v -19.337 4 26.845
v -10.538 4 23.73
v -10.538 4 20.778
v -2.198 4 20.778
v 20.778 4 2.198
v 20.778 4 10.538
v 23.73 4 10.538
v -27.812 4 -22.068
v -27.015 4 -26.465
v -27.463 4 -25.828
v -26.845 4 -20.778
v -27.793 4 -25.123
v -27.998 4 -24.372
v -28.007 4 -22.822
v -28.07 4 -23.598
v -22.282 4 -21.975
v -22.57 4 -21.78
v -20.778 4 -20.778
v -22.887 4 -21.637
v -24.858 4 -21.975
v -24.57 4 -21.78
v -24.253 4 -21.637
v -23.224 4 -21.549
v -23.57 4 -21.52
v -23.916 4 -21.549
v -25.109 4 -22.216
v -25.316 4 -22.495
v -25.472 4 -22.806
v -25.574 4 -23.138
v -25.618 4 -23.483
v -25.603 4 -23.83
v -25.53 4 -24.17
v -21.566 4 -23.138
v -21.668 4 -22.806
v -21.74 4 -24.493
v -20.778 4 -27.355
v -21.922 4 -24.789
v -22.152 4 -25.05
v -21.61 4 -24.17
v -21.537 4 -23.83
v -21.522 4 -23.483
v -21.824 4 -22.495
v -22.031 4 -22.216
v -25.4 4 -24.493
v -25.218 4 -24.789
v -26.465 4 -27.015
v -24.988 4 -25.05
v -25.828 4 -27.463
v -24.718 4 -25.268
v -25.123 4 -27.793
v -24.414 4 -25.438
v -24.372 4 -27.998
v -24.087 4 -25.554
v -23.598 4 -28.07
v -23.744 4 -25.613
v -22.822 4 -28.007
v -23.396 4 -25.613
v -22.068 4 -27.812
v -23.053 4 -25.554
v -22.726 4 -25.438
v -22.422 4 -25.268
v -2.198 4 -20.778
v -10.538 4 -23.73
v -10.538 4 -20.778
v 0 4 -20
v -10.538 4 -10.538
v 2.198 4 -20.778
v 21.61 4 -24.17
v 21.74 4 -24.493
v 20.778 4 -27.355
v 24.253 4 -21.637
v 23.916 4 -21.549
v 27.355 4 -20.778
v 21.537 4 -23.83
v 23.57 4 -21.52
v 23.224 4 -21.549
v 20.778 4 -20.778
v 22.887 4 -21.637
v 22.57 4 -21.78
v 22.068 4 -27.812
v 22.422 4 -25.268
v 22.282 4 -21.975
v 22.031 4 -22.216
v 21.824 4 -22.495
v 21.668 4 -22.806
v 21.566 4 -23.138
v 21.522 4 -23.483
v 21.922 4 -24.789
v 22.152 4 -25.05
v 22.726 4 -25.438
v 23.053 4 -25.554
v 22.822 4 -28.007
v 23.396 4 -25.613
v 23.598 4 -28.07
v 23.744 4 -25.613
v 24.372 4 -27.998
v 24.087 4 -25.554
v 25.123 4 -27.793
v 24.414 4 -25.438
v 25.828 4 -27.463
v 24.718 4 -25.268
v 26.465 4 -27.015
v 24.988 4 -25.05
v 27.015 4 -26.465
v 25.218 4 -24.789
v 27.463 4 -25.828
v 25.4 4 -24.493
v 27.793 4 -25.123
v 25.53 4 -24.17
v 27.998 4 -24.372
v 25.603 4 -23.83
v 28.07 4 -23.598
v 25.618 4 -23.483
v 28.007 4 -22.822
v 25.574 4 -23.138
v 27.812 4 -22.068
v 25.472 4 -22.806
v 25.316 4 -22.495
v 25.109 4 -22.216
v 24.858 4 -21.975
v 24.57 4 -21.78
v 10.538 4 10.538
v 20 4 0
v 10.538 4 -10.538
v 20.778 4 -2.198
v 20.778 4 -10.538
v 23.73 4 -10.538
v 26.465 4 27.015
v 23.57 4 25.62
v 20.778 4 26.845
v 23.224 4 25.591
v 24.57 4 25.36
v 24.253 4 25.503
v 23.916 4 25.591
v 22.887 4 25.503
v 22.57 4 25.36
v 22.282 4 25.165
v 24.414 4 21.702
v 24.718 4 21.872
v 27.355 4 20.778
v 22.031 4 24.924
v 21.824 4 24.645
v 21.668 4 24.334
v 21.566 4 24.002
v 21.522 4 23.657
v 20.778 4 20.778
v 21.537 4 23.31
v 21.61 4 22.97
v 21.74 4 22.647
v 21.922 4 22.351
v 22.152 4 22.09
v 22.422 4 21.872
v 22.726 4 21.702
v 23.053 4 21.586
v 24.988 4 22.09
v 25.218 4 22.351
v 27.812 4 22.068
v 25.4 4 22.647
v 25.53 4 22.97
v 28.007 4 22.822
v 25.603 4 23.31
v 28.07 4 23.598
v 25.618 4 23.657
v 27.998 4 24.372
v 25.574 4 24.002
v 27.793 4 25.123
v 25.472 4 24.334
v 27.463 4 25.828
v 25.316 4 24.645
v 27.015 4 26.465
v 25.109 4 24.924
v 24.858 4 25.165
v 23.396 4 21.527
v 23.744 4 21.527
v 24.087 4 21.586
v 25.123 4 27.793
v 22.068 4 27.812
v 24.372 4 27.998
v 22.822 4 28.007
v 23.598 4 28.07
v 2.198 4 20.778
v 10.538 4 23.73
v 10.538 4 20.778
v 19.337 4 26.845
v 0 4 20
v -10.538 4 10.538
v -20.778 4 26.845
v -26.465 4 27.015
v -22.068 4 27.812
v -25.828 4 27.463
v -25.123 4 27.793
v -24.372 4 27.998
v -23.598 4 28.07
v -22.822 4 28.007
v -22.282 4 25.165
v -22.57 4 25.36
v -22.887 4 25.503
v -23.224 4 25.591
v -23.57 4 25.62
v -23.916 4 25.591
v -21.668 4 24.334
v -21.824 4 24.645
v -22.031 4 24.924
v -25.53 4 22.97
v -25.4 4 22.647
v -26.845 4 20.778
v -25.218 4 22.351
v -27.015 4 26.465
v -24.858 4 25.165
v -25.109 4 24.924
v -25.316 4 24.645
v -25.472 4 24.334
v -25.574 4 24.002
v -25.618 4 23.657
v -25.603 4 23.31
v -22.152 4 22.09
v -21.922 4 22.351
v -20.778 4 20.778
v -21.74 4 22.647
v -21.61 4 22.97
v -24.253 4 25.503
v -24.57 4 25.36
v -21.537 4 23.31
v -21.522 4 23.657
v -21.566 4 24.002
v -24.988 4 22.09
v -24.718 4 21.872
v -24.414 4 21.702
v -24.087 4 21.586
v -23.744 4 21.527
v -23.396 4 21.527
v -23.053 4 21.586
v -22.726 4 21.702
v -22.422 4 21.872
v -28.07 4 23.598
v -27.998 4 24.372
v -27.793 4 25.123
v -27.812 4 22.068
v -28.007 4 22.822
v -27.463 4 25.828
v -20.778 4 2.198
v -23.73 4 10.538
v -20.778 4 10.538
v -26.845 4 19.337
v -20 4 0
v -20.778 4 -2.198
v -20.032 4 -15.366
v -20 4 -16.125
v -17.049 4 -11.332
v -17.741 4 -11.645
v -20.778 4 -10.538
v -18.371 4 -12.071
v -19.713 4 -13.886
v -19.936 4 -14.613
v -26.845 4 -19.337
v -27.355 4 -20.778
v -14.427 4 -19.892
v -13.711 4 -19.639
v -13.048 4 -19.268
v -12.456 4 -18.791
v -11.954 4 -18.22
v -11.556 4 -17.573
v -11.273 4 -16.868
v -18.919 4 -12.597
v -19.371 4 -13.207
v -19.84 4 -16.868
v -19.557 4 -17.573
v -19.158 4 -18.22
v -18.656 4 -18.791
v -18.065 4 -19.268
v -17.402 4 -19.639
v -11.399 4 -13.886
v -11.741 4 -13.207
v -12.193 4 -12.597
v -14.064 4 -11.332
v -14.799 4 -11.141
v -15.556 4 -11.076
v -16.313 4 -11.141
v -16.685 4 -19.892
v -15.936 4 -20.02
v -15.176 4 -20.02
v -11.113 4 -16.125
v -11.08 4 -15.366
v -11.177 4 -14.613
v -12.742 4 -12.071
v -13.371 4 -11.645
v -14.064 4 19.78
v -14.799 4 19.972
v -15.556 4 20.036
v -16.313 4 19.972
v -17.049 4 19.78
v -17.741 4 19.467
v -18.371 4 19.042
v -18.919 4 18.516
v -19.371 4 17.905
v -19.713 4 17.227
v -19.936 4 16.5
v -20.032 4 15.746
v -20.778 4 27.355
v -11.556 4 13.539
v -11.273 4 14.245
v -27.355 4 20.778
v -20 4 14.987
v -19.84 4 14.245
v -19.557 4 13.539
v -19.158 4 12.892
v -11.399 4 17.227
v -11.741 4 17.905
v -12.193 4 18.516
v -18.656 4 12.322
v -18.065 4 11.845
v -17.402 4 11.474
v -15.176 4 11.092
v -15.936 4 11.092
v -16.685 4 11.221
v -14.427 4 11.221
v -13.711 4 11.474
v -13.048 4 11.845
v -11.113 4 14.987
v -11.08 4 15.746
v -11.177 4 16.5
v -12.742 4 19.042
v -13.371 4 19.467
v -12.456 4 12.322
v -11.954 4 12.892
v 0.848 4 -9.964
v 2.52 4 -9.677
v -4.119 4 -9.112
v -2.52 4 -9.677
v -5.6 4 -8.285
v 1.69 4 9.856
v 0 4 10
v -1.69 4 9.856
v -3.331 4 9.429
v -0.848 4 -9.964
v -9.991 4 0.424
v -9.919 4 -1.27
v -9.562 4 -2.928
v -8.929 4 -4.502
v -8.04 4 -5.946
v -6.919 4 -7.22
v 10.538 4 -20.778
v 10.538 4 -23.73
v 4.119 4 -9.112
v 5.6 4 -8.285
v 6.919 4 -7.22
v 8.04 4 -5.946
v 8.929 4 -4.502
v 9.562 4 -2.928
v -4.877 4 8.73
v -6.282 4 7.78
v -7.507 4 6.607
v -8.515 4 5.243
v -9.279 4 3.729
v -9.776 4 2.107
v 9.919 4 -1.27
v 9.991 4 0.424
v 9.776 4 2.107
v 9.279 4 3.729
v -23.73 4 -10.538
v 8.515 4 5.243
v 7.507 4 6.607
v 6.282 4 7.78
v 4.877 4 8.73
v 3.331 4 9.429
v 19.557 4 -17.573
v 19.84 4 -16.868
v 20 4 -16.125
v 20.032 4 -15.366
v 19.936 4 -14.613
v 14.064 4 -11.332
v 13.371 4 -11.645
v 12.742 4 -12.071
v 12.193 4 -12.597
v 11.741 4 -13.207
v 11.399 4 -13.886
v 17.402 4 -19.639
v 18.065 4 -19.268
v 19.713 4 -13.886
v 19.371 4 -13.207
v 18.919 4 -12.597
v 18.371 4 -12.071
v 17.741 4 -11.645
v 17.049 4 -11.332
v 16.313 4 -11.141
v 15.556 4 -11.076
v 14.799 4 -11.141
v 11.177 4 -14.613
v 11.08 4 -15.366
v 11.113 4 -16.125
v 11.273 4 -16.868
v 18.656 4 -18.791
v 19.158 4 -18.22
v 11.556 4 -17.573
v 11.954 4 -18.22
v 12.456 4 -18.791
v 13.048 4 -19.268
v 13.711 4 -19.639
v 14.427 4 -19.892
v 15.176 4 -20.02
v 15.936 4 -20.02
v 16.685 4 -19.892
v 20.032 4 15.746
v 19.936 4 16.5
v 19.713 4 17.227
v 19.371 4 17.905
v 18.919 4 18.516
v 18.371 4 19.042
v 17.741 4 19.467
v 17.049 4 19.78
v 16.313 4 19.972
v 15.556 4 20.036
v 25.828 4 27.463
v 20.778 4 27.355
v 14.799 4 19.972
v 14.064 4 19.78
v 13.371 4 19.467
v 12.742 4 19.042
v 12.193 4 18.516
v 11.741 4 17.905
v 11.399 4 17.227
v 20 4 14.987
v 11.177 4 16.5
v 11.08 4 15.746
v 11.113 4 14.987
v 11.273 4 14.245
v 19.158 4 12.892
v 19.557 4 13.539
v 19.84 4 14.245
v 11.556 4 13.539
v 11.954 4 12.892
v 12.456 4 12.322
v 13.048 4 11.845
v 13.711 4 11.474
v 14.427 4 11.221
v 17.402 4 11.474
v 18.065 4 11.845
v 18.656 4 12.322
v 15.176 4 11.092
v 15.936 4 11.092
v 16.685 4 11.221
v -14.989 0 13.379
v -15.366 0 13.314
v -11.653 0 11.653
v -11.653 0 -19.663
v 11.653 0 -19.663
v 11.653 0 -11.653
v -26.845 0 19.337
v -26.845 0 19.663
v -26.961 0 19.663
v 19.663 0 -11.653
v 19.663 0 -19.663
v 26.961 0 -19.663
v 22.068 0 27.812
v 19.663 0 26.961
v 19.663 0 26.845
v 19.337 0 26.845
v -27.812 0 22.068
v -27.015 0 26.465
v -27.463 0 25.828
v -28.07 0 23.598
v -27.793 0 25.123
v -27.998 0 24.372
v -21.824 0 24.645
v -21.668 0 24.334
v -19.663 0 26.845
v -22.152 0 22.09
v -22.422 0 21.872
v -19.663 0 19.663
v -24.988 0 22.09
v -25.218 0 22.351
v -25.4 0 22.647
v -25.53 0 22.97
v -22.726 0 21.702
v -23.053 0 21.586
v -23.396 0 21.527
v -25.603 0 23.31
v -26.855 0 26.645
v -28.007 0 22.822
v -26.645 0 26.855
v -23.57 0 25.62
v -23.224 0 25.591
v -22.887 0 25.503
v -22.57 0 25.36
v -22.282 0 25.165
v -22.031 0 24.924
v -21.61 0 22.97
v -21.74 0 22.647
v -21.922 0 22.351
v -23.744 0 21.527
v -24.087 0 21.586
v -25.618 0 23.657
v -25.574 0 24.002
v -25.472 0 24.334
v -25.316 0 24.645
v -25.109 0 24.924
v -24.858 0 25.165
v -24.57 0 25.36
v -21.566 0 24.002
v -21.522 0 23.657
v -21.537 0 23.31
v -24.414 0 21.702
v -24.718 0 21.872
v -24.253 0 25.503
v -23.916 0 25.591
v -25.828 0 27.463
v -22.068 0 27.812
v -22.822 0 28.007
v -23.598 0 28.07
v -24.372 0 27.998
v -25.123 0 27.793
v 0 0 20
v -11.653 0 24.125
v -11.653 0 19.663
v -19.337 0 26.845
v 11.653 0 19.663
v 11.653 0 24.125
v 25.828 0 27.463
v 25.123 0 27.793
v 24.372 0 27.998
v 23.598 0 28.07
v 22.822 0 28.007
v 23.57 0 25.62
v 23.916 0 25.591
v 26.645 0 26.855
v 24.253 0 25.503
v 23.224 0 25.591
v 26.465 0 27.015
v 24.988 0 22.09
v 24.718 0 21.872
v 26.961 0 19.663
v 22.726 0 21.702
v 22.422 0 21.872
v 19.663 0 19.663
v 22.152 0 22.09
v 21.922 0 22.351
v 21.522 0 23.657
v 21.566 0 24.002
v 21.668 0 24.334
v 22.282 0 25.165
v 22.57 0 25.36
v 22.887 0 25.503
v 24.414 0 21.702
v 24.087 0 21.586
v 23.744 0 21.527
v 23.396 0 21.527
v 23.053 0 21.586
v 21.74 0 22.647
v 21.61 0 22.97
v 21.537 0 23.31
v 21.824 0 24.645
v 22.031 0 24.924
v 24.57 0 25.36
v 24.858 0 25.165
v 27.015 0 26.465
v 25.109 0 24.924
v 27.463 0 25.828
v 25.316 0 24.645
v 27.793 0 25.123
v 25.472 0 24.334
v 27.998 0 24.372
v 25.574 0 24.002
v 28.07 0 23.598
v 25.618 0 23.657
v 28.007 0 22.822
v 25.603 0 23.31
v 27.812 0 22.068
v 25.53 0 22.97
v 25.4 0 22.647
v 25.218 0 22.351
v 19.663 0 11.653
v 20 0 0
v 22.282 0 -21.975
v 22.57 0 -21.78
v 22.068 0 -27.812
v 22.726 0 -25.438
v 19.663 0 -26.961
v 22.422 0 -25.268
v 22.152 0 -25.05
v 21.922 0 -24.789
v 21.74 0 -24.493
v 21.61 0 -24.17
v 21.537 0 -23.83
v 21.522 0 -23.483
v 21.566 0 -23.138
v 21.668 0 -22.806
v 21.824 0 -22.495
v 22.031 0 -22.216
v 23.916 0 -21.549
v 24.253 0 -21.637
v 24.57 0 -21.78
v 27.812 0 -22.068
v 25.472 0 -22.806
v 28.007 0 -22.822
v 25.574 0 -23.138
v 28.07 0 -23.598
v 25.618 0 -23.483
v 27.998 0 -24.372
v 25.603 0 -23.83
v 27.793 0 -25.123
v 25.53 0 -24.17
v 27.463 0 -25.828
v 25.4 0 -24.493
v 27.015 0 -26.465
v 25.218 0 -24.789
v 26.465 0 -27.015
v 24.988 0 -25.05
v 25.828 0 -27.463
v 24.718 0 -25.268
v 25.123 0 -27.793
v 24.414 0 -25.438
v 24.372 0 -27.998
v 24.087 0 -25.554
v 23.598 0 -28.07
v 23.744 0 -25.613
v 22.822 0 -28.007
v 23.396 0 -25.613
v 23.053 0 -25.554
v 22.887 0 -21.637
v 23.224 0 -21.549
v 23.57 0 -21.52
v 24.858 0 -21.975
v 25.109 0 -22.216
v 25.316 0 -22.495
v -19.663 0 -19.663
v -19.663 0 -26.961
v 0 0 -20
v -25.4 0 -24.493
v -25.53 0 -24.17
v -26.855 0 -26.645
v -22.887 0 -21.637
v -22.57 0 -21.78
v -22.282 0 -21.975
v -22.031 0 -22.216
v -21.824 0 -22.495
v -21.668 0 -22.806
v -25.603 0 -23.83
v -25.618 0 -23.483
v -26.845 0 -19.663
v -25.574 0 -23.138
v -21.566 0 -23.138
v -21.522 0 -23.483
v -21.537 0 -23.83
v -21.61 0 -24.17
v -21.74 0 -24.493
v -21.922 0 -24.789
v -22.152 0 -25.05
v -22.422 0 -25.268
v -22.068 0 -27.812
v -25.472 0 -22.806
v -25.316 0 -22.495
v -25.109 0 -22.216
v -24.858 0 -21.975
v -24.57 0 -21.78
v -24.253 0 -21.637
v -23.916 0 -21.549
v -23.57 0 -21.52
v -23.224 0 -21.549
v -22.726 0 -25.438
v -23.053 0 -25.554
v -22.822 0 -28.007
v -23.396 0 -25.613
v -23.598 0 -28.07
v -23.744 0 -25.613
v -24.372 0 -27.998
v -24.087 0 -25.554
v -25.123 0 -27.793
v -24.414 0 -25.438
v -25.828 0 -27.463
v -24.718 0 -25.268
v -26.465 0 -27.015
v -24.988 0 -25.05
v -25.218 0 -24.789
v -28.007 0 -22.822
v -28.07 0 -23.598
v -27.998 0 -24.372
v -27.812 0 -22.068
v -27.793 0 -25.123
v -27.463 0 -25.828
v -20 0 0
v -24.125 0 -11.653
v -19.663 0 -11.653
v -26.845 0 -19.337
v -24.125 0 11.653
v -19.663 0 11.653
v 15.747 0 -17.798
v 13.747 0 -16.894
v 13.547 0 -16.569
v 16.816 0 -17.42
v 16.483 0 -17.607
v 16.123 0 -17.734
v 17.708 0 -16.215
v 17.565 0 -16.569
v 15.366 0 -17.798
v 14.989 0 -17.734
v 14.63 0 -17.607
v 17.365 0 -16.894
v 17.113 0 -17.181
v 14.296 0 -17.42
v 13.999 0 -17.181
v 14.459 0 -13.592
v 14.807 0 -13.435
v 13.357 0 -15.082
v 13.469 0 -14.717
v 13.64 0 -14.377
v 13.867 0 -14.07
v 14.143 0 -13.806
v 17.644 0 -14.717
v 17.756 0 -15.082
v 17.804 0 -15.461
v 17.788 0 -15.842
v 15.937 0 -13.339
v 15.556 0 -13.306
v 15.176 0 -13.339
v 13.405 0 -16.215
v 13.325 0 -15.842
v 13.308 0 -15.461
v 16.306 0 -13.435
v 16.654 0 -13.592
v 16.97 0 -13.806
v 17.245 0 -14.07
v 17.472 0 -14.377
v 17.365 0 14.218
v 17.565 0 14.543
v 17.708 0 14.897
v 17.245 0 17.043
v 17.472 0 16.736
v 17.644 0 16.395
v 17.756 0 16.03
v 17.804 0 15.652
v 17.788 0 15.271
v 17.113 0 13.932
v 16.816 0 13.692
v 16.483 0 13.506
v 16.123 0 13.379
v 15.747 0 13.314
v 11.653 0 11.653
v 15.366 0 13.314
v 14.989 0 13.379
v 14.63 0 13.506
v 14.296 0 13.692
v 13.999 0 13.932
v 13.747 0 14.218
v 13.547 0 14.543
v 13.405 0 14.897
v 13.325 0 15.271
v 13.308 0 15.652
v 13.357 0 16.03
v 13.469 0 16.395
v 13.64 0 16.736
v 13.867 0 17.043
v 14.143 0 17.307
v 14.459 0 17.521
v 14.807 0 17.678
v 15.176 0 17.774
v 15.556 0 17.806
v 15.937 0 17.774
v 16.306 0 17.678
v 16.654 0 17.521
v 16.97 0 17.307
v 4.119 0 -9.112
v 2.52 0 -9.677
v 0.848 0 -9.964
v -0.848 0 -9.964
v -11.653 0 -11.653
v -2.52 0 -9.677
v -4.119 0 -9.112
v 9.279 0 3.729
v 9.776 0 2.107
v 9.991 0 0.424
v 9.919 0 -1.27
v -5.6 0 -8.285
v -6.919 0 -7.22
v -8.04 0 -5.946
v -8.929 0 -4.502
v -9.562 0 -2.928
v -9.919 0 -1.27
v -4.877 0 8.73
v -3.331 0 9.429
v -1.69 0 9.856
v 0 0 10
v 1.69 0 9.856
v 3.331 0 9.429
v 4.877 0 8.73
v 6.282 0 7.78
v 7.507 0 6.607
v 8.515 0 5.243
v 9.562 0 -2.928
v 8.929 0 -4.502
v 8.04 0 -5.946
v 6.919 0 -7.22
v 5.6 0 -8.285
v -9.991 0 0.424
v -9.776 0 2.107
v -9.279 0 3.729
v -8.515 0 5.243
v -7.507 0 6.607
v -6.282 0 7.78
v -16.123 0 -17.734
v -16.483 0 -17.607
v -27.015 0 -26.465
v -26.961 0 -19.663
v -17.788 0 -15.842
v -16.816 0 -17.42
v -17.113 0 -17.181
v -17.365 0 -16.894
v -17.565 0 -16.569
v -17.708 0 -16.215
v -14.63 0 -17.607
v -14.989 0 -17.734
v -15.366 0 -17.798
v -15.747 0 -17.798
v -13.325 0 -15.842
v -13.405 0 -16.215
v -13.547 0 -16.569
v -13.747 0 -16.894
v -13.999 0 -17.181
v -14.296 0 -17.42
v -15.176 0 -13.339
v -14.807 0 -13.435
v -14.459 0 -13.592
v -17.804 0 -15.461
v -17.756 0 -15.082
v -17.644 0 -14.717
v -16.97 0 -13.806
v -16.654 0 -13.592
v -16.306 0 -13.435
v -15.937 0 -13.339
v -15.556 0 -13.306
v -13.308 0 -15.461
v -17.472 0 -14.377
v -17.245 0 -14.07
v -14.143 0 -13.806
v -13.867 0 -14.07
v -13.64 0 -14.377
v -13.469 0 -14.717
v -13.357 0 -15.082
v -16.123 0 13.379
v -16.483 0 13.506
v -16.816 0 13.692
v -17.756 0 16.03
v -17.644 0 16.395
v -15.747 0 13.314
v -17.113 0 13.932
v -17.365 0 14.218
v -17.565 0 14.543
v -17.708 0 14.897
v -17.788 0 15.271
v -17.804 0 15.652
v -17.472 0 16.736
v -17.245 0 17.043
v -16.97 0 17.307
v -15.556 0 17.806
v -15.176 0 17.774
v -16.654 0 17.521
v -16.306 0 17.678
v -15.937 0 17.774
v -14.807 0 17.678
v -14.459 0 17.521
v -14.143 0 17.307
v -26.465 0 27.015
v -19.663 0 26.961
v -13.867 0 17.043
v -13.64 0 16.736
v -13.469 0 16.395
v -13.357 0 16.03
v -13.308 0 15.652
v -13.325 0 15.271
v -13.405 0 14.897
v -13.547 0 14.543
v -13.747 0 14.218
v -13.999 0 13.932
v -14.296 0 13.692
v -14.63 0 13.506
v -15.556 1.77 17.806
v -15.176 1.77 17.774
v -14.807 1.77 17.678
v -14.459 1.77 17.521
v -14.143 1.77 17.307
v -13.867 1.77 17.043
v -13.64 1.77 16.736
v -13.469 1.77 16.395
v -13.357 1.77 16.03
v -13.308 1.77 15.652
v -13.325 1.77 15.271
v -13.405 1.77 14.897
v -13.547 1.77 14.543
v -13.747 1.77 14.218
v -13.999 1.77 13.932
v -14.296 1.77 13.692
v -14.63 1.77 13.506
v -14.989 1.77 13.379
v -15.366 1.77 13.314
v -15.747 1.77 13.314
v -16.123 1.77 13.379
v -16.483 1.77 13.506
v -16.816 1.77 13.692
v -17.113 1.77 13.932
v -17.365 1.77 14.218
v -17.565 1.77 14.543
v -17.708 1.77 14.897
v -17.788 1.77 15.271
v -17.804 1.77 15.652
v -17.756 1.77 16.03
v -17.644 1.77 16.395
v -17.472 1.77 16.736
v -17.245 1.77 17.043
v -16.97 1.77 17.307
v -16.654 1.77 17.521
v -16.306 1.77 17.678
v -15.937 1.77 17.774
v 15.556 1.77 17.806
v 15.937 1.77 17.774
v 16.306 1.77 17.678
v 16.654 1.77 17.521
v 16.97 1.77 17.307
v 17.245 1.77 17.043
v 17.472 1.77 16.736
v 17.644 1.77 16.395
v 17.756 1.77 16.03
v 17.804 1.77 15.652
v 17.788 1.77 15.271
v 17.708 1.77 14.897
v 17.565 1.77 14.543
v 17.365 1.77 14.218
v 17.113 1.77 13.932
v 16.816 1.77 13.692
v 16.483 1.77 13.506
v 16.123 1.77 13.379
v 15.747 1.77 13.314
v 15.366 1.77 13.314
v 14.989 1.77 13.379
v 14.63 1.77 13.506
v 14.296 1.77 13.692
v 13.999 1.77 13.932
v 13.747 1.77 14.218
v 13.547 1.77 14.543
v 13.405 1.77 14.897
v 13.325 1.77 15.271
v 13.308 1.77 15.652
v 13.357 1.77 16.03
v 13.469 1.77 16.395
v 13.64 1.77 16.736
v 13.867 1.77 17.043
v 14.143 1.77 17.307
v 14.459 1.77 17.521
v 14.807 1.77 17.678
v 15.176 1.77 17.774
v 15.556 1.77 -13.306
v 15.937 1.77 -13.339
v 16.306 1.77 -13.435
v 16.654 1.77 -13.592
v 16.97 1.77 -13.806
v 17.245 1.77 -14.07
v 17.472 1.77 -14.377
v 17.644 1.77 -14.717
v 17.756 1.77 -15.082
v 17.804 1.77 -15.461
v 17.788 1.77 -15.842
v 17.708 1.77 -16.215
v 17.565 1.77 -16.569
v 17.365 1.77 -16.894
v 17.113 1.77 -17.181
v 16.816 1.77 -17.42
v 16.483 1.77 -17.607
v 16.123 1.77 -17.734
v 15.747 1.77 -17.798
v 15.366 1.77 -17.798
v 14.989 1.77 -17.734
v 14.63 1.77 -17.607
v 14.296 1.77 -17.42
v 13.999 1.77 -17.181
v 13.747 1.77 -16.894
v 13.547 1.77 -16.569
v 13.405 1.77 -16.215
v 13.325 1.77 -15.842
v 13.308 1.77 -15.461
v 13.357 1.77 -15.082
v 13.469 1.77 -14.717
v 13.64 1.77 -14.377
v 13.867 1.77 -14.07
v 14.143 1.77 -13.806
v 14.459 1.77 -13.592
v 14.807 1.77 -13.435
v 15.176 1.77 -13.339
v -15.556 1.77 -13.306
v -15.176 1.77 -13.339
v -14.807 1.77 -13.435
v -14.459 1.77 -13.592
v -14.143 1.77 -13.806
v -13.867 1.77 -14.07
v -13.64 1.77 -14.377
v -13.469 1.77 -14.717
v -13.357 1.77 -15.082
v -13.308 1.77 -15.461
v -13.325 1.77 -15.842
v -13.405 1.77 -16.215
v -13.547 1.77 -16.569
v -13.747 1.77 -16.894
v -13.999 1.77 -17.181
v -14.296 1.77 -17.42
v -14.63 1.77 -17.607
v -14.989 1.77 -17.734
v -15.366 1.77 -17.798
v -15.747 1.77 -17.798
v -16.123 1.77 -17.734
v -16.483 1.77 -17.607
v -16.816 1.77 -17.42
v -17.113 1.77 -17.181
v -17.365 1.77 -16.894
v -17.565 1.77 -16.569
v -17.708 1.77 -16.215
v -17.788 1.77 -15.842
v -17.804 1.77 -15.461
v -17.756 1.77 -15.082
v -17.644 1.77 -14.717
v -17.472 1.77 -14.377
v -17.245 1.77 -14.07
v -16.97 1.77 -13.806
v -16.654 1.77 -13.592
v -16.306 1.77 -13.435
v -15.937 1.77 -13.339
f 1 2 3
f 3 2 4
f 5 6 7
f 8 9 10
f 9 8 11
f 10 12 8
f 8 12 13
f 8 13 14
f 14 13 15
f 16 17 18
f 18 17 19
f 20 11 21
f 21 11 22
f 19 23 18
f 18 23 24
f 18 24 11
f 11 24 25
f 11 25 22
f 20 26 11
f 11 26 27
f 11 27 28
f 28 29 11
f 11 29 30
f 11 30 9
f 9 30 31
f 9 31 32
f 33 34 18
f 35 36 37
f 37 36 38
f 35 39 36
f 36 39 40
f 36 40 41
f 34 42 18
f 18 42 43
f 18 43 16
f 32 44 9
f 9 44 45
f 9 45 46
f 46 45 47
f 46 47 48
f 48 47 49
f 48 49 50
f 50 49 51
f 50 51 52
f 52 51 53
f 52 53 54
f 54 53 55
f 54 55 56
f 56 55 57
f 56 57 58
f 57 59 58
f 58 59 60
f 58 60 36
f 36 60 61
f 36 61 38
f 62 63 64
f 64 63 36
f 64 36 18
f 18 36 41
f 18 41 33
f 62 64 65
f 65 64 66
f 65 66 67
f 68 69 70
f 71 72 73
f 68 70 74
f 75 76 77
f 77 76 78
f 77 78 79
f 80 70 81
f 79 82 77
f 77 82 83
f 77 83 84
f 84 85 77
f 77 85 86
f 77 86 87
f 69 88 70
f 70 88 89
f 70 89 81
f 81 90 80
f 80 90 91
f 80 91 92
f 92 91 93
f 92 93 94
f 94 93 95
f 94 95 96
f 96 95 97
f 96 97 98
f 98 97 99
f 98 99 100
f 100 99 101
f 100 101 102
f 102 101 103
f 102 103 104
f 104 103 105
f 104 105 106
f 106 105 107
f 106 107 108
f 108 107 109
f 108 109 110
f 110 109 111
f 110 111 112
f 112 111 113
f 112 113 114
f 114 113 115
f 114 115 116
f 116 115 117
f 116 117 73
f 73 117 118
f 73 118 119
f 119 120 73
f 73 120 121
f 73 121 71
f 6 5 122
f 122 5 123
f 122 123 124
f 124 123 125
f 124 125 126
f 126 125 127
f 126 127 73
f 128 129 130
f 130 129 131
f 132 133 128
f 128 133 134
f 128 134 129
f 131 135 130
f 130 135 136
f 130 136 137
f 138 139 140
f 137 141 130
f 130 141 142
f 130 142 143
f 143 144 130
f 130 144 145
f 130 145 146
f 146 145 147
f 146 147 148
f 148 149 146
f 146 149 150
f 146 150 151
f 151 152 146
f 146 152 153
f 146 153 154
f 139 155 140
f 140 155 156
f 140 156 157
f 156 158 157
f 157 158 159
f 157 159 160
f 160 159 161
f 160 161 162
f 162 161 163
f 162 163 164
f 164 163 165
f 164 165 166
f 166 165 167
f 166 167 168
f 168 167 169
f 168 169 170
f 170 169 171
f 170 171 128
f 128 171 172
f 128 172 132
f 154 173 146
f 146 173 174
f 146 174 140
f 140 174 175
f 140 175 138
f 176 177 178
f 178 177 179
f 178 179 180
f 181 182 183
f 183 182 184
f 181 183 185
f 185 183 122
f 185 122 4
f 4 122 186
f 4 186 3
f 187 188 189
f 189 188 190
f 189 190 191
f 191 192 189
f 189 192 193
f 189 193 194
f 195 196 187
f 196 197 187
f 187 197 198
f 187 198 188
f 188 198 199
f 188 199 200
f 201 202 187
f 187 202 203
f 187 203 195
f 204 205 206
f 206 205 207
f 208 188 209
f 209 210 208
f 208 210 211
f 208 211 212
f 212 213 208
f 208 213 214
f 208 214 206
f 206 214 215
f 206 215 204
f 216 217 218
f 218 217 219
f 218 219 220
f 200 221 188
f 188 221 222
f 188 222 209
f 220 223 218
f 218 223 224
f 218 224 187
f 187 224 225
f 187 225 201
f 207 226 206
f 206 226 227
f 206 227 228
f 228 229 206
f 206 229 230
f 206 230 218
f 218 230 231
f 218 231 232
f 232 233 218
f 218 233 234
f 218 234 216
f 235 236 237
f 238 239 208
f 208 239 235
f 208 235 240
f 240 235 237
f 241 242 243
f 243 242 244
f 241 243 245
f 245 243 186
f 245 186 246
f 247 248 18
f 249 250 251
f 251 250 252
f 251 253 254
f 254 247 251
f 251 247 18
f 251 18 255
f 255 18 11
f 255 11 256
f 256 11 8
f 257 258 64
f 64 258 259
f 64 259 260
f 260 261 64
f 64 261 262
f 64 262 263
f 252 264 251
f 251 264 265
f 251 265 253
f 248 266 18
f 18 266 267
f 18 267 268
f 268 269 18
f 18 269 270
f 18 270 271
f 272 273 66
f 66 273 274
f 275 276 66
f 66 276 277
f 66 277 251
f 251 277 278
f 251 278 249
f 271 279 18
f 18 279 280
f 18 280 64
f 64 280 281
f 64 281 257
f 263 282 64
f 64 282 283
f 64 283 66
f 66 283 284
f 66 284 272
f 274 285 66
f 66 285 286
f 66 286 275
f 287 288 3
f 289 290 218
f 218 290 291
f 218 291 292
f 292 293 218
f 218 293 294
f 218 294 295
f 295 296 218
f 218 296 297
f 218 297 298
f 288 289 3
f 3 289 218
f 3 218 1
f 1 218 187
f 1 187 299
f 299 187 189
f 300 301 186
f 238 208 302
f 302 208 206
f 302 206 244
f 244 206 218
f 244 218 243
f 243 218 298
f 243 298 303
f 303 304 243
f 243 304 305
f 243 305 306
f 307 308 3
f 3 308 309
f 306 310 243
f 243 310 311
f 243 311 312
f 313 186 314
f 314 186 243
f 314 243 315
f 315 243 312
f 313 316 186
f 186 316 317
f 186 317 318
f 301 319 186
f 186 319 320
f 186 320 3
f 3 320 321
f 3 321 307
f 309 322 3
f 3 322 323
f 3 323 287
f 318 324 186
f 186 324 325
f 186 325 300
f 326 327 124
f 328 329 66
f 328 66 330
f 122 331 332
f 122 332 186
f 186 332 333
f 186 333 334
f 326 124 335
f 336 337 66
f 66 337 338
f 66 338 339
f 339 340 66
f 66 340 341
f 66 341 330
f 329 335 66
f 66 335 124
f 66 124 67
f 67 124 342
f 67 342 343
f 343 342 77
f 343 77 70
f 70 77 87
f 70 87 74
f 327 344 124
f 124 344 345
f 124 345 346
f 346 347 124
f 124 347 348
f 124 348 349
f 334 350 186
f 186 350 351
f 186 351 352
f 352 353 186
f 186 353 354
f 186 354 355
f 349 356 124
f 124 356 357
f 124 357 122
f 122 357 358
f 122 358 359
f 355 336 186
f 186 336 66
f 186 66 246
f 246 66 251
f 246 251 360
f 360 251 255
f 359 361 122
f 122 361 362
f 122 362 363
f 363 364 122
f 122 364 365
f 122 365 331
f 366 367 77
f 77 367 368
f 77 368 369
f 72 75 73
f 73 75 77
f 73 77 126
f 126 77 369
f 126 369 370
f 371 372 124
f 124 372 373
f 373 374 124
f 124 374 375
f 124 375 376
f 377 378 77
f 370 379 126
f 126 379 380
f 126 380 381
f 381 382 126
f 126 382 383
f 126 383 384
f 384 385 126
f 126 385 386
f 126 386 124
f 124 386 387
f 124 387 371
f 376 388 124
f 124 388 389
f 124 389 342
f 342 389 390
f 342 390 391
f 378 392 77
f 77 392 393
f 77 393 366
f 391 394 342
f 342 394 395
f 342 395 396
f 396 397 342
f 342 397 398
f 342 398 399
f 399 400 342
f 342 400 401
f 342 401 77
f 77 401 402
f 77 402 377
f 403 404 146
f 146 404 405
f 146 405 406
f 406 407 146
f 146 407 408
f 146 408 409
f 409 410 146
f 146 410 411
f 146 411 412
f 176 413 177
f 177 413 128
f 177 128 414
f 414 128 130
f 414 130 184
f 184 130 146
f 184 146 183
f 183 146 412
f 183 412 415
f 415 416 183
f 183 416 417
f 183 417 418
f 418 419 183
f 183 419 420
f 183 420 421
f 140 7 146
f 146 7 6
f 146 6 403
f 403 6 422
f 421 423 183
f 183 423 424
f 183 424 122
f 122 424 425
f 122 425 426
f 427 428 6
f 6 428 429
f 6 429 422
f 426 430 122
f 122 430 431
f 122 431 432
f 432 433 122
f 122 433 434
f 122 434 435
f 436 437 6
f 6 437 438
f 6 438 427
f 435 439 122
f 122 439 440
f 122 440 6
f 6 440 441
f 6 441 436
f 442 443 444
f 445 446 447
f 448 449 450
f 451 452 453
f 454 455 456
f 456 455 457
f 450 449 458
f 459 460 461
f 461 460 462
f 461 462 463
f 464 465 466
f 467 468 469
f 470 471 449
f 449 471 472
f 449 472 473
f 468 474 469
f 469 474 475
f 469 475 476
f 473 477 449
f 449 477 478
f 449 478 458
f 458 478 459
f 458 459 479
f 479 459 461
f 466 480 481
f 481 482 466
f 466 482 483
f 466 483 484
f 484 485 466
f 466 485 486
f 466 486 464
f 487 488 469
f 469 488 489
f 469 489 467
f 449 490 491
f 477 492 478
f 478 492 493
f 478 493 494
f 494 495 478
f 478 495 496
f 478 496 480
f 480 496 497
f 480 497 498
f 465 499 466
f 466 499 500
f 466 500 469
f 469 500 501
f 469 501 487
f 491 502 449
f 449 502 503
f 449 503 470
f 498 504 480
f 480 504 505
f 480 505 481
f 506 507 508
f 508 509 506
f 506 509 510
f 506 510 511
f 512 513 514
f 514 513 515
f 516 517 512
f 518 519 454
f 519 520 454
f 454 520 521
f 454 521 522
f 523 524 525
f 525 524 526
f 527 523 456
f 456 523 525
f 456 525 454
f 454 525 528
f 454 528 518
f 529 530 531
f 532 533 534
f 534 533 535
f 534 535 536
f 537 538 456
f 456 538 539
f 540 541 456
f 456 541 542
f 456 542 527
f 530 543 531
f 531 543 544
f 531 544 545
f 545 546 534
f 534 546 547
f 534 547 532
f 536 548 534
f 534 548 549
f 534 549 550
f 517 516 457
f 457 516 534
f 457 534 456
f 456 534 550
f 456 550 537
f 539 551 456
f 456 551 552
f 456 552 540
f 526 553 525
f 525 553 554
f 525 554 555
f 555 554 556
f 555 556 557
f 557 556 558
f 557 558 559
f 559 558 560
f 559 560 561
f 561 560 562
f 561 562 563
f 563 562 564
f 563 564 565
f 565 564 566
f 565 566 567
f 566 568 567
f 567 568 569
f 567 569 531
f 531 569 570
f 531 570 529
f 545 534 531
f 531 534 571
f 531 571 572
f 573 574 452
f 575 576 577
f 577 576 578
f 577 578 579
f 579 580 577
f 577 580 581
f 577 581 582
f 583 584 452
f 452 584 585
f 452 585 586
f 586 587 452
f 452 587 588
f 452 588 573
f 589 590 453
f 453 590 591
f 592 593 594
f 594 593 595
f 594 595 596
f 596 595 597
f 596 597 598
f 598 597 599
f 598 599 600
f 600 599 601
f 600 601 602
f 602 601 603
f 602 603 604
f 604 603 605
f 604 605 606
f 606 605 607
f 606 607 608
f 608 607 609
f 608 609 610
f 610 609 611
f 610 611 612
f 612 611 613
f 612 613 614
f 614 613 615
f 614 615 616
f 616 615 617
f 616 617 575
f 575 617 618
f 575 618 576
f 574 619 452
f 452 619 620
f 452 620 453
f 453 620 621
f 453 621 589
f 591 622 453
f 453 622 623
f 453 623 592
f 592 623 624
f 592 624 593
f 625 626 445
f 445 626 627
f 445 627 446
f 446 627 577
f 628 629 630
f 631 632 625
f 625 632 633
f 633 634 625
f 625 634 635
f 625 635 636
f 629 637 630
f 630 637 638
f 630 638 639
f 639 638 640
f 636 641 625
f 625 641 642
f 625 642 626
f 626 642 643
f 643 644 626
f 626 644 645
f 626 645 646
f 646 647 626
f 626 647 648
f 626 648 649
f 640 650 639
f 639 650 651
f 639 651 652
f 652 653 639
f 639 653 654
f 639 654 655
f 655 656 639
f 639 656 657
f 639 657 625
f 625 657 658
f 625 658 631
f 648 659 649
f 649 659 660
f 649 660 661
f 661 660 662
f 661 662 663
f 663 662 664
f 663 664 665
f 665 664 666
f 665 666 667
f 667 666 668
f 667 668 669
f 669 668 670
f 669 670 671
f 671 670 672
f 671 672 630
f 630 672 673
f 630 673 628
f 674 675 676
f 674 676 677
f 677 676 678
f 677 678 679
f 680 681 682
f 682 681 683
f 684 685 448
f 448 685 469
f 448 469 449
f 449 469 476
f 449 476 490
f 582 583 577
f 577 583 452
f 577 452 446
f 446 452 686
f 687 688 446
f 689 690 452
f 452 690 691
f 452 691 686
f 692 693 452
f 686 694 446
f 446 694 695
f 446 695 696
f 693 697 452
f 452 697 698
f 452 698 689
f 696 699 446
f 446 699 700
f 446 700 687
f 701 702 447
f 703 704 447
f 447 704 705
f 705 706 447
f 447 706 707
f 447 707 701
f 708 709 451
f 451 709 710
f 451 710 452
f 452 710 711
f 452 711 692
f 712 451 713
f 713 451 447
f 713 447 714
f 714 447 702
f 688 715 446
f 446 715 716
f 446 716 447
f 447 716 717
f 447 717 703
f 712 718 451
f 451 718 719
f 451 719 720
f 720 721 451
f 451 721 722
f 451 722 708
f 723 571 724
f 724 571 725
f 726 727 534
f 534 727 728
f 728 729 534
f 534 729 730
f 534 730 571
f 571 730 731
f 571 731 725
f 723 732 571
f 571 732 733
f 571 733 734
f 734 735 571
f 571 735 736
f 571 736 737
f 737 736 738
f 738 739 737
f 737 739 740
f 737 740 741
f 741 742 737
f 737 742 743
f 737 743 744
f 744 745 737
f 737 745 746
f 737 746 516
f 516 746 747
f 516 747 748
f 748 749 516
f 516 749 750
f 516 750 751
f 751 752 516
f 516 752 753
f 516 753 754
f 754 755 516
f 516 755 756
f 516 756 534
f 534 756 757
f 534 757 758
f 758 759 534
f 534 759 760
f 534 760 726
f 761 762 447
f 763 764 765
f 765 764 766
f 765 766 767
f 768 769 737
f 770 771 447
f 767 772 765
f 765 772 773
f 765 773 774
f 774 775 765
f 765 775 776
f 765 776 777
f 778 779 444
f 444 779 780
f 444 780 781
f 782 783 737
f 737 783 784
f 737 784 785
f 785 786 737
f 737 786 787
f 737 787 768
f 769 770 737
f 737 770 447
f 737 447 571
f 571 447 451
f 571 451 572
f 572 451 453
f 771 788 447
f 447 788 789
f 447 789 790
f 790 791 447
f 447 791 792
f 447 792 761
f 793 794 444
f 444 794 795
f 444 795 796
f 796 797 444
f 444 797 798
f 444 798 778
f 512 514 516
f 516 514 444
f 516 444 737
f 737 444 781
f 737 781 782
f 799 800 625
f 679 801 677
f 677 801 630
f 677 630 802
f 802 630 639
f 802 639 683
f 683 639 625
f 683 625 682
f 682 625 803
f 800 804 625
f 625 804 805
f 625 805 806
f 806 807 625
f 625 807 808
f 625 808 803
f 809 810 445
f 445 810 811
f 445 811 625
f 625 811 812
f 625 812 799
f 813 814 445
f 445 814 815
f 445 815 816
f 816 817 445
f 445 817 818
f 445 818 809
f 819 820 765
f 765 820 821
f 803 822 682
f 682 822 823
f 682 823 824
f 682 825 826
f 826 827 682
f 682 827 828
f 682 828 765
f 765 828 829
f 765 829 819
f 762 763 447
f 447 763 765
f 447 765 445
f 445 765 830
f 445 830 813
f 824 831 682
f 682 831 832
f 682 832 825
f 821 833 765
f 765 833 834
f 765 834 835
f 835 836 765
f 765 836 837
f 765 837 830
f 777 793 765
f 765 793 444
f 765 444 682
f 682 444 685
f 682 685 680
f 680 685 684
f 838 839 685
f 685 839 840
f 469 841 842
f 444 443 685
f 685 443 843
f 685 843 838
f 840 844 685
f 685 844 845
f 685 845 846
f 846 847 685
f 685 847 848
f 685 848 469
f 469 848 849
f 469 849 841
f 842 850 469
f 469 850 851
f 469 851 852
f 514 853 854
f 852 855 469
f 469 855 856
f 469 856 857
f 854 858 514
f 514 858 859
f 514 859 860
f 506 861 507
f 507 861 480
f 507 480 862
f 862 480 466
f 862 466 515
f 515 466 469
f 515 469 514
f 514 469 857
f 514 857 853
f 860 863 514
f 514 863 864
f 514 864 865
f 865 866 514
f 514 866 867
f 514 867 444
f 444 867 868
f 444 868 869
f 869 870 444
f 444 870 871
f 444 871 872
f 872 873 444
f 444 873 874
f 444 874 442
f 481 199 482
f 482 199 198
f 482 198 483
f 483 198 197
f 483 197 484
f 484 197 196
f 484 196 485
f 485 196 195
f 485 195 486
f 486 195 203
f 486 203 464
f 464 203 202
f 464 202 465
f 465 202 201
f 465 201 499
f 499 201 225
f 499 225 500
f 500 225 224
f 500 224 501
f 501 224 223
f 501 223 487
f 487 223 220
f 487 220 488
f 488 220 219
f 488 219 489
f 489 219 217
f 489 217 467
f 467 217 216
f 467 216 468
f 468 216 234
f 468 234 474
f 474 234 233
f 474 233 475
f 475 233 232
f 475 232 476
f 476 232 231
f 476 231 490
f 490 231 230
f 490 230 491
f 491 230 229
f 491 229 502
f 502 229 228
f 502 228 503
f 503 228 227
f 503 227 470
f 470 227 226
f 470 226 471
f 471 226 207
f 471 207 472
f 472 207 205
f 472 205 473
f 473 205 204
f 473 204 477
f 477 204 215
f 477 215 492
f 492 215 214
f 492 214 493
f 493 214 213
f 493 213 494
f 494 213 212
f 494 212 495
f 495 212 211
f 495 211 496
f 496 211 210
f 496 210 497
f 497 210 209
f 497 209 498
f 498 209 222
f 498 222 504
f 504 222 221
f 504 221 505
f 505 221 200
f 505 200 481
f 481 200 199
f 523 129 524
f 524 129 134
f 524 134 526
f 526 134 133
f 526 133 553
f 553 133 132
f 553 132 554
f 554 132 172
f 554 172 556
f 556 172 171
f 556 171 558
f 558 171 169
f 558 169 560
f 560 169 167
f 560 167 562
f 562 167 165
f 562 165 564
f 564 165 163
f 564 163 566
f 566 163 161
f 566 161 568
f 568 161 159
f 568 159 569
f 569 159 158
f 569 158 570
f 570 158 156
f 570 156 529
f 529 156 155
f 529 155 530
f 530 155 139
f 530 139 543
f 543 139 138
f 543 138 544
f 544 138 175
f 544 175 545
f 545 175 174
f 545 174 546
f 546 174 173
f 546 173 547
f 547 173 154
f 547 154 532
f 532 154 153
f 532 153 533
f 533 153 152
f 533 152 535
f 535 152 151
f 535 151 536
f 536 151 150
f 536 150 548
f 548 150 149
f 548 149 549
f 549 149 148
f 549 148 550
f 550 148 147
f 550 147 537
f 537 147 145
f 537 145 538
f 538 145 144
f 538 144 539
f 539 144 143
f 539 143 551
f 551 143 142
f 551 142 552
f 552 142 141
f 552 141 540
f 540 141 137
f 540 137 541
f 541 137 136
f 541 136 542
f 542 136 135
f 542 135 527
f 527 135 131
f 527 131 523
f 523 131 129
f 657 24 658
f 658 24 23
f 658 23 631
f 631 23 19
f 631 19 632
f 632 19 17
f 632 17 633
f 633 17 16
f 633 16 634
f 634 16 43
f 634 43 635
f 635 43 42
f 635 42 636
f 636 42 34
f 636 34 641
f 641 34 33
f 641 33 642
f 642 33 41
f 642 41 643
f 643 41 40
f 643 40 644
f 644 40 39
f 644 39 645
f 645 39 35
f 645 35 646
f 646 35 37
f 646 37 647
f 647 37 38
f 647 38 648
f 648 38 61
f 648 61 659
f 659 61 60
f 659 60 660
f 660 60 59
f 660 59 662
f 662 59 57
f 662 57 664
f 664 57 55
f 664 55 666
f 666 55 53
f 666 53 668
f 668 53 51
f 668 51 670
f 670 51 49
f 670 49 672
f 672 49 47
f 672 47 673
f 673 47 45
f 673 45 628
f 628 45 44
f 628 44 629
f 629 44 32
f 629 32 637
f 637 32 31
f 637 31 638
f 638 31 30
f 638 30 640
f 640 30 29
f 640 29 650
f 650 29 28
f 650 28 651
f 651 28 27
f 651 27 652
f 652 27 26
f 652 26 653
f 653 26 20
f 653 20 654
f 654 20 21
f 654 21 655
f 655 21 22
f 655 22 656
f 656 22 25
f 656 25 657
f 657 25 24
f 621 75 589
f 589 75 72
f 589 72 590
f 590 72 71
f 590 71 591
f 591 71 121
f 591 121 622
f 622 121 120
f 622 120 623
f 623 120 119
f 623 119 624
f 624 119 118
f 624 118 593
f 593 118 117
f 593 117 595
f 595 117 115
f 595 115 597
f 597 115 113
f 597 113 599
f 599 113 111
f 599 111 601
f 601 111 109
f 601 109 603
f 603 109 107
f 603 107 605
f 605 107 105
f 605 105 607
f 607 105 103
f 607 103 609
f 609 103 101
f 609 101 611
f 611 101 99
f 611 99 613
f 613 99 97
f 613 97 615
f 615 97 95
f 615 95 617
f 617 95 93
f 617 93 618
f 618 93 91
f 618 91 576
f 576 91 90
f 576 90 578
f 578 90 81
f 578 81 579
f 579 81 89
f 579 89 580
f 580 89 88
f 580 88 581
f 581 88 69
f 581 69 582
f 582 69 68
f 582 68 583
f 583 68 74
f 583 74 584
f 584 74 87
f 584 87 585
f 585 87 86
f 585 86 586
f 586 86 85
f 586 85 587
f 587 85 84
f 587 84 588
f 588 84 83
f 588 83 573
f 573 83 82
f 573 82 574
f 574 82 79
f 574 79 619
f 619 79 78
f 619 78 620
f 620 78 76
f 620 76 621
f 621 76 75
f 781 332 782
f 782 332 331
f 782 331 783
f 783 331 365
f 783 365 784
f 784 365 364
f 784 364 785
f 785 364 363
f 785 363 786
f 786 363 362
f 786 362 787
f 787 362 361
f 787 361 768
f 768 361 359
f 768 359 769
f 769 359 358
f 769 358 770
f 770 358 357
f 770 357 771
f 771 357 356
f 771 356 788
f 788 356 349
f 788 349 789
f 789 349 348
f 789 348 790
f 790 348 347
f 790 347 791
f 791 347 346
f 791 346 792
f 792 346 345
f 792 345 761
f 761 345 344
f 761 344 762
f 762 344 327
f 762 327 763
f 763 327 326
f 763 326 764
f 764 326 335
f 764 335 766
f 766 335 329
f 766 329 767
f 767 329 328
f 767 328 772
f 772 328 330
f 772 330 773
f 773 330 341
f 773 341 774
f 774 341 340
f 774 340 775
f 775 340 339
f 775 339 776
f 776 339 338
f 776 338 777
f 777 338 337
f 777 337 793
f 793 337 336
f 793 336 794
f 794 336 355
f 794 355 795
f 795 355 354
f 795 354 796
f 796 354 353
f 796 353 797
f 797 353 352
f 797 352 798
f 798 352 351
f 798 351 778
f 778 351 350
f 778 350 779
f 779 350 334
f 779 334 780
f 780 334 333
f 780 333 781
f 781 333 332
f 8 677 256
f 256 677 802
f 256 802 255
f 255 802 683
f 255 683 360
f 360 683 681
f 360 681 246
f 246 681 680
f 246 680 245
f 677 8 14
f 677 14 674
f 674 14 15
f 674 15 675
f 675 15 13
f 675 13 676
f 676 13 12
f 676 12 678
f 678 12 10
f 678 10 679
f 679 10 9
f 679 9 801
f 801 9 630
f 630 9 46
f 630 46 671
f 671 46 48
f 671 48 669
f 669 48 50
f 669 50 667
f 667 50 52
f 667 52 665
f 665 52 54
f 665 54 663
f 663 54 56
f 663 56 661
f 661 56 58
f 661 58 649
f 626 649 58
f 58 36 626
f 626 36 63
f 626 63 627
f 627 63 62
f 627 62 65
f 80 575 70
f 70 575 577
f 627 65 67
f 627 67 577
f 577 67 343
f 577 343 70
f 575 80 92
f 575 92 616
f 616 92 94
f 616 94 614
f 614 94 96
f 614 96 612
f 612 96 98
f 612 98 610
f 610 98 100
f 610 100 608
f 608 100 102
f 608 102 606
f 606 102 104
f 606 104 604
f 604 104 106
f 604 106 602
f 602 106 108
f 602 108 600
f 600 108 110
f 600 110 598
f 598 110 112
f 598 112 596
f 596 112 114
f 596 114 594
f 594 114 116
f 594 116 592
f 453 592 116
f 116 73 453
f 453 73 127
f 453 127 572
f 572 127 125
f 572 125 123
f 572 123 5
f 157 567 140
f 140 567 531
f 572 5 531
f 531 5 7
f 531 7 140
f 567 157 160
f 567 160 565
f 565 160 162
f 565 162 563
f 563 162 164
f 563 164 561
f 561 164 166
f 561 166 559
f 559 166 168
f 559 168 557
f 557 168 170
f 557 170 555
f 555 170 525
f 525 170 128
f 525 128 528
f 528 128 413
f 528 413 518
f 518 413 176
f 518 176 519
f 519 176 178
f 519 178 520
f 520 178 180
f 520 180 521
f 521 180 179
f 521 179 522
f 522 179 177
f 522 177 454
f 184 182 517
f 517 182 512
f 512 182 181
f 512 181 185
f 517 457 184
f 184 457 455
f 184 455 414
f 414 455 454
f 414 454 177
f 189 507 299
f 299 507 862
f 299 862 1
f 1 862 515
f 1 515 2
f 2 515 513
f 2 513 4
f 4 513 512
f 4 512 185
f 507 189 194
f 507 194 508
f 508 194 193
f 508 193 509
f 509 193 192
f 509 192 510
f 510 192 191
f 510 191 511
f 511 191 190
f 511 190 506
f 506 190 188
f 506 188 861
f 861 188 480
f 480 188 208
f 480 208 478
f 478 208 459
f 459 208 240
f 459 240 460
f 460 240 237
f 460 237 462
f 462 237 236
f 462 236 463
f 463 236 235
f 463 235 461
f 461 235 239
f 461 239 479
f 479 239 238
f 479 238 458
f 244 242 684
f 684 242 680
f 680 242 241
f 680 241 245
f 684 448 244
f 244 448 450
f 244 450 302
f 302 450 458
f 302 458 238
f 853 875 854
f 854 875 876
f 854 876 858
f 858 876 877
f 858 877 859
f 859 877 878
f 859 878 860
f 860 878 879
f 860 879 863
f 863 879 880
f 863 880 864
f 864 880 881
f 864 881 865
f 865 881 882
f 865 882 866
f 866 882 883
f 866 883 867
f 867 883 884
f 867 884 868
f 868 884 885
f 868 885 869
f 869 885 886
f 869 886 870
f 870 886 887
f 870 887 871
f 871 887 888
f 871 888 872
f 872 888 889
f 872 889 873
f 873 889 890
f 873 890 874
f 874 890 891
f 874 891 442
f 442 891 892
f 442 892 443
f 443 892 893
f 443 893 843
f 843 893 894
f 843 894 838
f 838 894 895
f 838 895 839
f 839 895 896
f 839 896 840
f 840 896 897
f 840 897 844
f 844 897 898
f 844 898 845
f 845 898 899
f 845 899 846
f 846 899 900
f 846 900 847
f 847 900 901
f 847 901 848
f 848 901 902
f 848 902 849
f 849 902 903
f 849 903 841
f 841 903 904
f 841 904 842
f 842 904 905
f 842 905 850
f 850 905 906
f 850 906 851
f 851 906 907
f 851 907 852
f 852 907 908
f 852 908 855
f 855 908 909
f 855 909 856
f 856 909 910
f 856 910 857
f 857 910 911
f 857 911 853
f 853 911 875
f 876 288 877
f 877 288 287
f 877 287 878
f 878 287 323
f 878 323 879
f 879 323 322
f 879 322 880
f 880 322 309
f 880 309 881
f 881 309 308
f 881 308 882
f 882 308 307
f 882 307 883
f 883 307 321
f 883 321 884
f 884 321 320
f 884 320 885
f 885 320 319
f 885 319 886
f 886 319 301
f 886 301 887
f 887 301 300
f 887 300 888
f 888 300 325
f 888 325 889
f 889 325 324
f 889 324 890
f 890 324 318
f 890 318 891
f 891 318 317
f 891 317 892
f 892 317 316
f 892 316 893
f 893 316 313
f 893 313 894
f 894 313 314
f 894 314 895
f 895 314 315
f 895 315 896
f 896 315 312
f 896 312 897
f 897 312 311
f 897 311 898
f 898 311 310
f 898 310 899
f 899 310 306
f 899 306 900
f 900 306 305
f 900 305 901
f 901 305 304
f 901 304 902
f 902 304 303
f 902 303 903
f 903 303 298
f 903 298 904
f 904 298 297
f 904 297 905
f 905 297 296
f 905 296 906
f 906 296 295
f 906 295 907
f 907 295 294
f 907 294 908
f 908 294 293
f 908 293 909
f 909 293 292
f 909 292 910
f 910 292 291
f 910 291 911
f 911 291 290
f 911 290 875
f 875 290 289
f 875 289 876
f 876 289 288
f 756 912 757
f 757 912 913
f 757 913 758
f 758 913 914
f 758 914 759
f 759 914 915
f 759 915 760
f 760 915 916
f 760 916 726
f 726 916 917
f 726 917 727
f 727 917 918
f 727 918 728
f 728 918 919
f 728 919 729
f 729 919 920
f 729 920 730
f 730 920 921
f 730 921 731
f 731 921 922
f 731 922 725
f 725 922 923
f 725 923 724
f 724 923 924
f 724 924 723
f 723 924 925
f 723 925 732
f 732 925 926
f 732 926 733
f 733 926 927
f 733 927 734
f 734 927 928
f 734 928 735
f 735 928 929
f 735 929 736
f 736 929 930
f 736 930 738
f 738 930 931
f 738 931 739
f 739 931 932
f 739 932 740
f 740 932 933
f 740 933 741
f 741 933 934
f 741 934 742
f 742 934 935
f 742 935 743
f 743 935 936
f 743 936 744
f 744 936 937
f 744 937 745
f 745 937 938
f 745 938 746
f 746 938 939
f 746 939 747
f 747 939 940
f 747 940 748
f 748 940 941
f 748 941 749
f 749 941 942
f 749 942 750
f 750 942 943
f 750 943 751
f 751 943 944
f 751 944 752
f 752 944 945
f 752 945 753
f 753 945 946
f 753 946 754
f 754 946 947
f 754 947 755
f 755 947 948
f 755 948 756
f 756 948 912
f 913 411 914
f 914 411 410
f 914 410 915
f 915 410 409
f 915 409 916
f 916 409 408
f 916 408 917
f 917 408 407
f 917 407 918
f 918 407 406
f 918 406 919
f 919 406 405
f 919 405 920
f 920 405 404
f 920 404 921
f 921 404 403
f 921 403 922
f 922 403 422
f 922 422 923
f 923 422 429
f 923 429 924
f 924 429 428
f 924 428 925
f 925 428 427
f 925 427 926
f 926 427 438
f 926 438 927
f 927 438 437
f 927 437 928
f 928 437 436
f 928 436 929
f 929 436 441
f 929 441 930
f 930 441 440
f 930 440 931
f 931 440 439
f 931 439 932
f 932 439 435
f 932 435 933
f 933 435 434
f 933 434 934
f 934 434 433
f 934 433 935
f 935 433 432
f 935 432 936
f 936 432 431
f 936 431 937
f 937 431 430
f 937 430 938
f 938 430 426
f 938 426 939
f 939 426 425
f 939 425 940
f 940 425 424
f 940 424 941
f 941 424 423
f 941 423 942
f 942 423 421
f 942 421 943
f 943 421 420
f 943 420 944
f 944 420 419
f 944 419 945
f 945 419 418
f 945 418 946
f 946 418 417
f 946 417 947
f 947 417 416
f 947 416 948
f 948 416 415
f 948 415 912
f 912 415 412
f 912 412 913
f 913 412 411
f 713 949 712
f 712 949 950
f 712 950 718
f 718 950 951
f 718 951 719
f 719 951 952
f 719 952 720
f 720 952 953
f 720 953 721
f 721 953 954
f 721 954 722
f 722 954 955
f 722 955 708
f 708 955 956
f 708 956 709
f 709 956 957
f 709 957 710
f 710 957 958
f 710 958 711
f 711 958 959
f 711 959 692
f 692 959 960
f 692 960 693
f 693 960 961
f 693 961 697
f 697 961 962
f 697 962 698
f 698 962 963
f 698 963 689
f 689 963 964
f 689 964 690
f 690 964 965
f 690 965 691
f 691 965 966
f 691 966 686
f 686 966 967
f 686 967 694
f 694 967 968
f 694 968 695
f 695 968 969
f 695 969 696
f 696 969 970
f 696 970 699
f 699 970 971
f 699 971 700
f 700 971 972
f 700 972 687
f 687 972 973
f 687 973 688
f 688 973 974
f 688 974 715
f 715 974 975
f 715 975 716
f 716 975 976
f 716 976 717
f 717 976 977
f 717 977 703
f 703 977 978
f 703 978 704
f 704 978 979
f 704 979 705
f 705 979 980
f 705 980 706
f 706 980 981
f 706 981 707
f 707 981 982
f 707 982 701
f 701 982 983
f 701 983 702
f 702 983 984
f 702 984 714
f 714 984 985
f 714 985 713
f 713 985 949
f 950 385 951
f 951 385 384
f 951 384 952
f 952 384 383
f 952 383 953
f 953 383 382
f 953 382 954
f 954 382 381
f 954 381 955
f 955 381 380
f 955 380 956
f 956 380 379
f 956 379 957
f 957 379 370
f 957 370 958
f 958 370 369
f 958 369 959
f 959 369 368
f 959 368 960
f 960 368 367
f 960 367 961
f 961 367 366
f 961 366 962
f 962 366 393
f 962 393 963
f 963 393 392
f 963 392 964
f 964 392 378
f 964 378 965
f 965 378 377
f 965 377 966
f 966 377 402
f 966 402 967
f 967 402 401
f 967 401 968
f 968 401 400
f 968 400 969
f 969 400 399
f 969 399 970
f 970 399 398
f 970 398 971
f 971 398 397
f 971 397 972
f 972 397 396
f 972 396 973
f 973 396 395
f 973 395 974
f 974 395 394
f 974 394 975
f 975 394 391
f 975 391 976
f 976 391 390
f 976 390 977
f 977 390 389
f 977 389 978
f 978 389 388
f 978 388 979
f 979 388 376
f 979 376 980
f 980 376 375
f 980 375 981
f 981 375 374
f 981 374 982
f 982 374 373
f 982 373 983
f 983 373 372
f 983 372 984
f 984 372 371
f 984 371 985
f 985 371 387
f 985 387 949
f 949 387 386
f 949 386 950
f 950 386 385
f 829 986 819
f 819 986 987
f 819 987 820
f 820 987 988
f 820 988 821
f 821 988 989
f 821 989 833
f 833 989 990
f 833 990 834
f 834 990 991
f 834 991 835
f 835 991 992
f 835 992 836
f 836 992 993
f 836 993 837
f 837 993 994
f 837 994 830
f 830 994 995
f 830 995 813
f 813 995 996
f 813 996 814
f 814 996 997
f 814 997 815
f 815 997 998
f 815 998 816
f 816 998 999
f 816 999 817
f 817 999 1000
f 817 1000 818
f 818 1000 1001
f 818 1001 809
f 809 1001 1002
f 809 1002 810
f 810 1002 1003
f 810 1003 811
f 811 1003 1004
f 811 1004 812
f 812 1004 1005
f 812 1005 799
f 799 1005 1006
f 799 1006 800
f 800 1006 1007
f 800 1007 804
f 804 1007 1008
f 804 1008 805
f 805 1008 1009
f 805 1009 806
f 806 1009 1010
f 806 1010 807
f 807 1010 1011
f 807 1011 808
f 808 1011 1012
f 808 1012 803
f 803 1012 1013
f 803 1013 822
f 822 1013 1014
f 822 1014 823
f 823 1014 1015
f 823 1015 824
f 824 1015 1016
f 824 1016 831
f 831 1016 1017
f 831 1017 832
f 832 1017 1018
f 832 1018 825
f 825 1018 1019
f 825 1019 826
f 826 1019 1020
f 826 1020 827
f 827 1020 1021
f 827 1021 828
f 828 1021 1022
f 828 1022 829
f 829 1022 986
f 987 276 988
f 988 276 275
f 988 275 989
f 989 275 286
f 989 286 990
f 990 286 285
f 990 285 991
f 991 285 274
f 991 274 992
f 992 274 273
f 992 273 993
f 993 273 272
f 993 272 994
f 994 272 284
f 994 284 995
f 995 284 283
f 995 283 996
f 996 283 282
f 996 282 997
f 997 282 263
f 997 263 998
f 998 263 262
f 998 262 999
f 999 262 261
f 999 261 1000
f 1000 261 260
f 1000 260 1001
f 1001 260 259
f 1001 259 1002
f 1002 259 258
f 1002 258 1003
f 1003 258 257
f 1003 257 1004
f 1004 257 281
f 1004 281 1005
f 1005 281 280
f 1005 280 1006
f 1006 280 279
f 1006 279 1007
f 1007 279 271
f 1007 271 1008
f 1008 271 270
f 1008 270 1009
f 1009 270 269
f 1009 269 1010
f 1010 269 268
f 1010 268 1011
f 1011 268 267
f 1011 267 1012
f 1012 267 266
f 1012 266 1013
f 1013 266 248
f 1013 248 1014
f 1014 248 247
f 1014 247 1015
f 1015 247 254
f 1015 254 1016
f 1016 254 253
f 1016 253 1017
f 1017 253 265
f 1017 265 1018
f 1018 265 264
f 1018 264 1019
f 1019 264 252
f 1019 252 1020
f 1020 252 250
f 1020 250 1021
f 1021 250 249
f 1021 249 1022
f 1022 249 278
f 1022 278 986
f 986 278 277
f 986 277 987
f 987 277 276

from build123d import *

# Parameters (mm, degrees)
SKETCH1_W                                    = 71.3
SKETCH1_H                                    = 60
BOSS_EXTRUDE1_DEPTH                          = 4
SKETCH2_R                                    = 2.05
CUT_EXTRUDE1_DEPTH                           = 47.764543192
SKETCH4_R                                    = 10
CUT_EXTRUDE3_DEPTH                           = 47.764543192
SKETCH5_OUTSIDE_W                            = 91.954
SKETCH5_OUTSIDE_H                            = 80.654
CUT_EXTRUDE4_DEPTH                           = 47.764543192
CSK_FOR_M4_HEX_SOCKET_COUNTERSUNK_CA_2_COUNT = 2
CSK_FOR_M4_HEX_SOCKET_COUNTERSUNK_CA_2_PITCH = 31.112698372
CSK_FOR_M4_HEX_SOCKET_COUNTERSUNK_CA_3_COUNT = 2
CSK_FOR_M4_HEX_SOCKET_COUNTERSUNK_CA_3_PITCH = 44
CSK_FOR_M4_HEX_SOCKET_COUNTERSUNK_CA_4_COUNT = 2
CSK_FOR_M4_HEX_SOCKET_COUNTERSUNK_CA_4_PITCH = 31.112698372


with BuildPart() as part:
    # Sketch1 → Boss-Extrude1 (new body)
    with BuildSketch(Plane(origin=(0, 0, 0), x_dir=(1, 0, 0), z_dir=(0, 1, 0))):
        Rectangle(SKETCH1_W, SKETCH1_H)
    extrude(amount=BOSS_EXTRUDE1_DEPTH)

    # Sketch2 → Cut-Extrude1 (cut, through all)
    with BuildSketch(Plane(origin=(0, 4, 0), x_dir=(1, 0, 0), z_dir=(0, 1, 0))):
        with Locations(Location((-15.556349186, 15.556349186, 0), (0, 0, 270))):
            Circle(SKETCH2_R)
        with Locations(Location((-23.57, 23.57, 0), (0, 0, 270))):
            Circle(SKETCH2_R)
        with Locations(Location((15.556349186, 15.556349186, 0), (0, 0, 270))):
            Circle(SKETCH2_R)
        with Locations(Location((23.57, 23.57, 0), (0, 0, 270))):
            Circle(SKETCH2_R)
        with Locations(Location((15.556349186, -15.556349186, 0), (0, 0, 270))):
            Circle(SKETCH2_R)
        with Locations(Location((23.57, -23.57, 0), (0, 0, 270))):
            Circle(SKETCH2_R)
        with Locations(Location((-15.556349186, -15.556349186, 0), (0, 0, 270))):
            Circle(SKETCH2_R)
        with Locations(Location((-23.57, -23.57, 0), (0, 0, 270))):
            Circle(SKETCH2_R)
    extrude(amount=-CUT_EXTRUDE1_DEPTH, mode=Mode.SUBTRACT)

    # Sketch4 → Cut-Extrude3 (cut, through all)
    with BuildSketch(Plane(origin=(0, 4, 0), x_dir=(1, 0, 0), z_dir=(0, 1, 0))):
        with Locations(Location((0, 0, 0), (0, 0, 270))):
            Circle(SKETCH4_R)
    extrude(amount=-CUT_EXTRUDE3_DEPTH, mode=Mode.SUBTRACT)

    # Sketch5 outside → Cut-Extrude4 (cut, through all)
    with BuildSketch(Plane(origin=(0, 4, 0), x_dir=(1, 0, 0), z_dir=(0, 1, 0))):
        Rectangle(SKETCH5_OUTSIDE_W, SKETCH5_OUTSIDE_H)
        with BuildLine():
            Line((20, 0), (27.812053359, 22.068339818))
            ThreePointArc((27.812053359, 22.068339818), (26.751980515, 26.751980515), (22.068339818, 27.812053359))
            Line((22.068339818, 27.812053359), (0, 20))
            Line((0, 20), (-22.068339818, 27.812053359))
            ThreePointArc((-22.068339818, 27.812053359), (-26.751980515, 26.751980515), (-27.812053359, 22.068339818))
            Line((-27.812053359, 22.068339818), (-20, 0))
            Line((-20, 0), (-27.812053359, -22.068339818))
            ThreePointArc((-27.812053359, -22.068339818), (-26.751980515, -26.751980515), (-22.068339818, -27.812053359))
            Line((-22.068339818, -27.812053359), (0, -20))
            Line((0, -20), (22.068339818, -27.812053359))
            ThreePointArc((22.068339818, -27.812053359), (26.751980515, -26.751980515), (27.812053359, -22.068339818))
            Line((27.812053359, -22.068339818), (20, 0))
        make_face(mode=Mode.SUBTRACT)
    extrude(amount=-CUT_EXTRUDE4_DEPTH, mode=Mode.SUBTRACT)

    # Sketch7 → CSK for M4 Hex Socket Countersunk Cap Screw1 (revolve, cut)
    with BuildSketch(Plane(origin=(-15.556349186, 4, -15.556349186), x_dir=(0, 0, 1), z_dir=(1, 0, 0))):
        Polygon((0, 0), (0, 4), (2.25, 4), (2.25, 2.23), (4.48, 0), align=None)
    csk_for_m4_hex_socket_countersunk_cap_sc = revolve(axis=Axis((-15.556349186, 10.35, -15.556349186), (0, -1, 0)), mode=Mode.SUBTRACT)

    # CSK for M4 Hex Socket Countersunk Ca 2: CSK for M4 Hex Socket Countersunk Cap Screw1 ×2
    with Locations(*[(i * CSK_FOR_M4_HEX_SOCKET_COUNTERSUNK_CA_2_PITCH, 0, 0) for i in range(1, CSK_FOR_M4_HEX_SOCKET_COUNTERSUNK_CA_2_COUNT)]):
        add(csk_for_m4_hex_socket_countersunk_cap_sc, mode=Mode.SUBTRACT)

    # CSK for M4 Hex Socket Countersunk Ca 3: CSK for M4 Hex Socket Countersunk Cap Screw1 ×2
    with Locations(*[Vector(0.7071067811865476, 0, 0.7071067811865476) * (i * CSK_FOR_M4_HEX_SOCKET_COUNTERSUNK_CA_3_PITCH) for i in range(1, CSK_FOR_M4_HEX_SOCKET_COUNTERSUNK_CA_3_COUNT)]):
        add(csk_for_m4_hex_socket_countersunk_cap_sc, mode=Mode.SUBTRACT)

    # CSK for M4 Hex Socket Countersunk Ca 4: CSK for M4 Hex Socket Countersunk Cap Screw1 ×2
    with Locations(*[(0, 0, i * CSK_FOR_M4_HEX_SOCKET_COUNTERSUNK_CA_4_PITCH) for i in range(1, CSK_FOR_M4_HEX_SOCKET_COUNTERSUNK_CA_4_COUNT)]):
        add(csk_for_m4_hex_socket_countersunk_cap_sc, mode=Mode.SUBTRACT)


solid = part.part
